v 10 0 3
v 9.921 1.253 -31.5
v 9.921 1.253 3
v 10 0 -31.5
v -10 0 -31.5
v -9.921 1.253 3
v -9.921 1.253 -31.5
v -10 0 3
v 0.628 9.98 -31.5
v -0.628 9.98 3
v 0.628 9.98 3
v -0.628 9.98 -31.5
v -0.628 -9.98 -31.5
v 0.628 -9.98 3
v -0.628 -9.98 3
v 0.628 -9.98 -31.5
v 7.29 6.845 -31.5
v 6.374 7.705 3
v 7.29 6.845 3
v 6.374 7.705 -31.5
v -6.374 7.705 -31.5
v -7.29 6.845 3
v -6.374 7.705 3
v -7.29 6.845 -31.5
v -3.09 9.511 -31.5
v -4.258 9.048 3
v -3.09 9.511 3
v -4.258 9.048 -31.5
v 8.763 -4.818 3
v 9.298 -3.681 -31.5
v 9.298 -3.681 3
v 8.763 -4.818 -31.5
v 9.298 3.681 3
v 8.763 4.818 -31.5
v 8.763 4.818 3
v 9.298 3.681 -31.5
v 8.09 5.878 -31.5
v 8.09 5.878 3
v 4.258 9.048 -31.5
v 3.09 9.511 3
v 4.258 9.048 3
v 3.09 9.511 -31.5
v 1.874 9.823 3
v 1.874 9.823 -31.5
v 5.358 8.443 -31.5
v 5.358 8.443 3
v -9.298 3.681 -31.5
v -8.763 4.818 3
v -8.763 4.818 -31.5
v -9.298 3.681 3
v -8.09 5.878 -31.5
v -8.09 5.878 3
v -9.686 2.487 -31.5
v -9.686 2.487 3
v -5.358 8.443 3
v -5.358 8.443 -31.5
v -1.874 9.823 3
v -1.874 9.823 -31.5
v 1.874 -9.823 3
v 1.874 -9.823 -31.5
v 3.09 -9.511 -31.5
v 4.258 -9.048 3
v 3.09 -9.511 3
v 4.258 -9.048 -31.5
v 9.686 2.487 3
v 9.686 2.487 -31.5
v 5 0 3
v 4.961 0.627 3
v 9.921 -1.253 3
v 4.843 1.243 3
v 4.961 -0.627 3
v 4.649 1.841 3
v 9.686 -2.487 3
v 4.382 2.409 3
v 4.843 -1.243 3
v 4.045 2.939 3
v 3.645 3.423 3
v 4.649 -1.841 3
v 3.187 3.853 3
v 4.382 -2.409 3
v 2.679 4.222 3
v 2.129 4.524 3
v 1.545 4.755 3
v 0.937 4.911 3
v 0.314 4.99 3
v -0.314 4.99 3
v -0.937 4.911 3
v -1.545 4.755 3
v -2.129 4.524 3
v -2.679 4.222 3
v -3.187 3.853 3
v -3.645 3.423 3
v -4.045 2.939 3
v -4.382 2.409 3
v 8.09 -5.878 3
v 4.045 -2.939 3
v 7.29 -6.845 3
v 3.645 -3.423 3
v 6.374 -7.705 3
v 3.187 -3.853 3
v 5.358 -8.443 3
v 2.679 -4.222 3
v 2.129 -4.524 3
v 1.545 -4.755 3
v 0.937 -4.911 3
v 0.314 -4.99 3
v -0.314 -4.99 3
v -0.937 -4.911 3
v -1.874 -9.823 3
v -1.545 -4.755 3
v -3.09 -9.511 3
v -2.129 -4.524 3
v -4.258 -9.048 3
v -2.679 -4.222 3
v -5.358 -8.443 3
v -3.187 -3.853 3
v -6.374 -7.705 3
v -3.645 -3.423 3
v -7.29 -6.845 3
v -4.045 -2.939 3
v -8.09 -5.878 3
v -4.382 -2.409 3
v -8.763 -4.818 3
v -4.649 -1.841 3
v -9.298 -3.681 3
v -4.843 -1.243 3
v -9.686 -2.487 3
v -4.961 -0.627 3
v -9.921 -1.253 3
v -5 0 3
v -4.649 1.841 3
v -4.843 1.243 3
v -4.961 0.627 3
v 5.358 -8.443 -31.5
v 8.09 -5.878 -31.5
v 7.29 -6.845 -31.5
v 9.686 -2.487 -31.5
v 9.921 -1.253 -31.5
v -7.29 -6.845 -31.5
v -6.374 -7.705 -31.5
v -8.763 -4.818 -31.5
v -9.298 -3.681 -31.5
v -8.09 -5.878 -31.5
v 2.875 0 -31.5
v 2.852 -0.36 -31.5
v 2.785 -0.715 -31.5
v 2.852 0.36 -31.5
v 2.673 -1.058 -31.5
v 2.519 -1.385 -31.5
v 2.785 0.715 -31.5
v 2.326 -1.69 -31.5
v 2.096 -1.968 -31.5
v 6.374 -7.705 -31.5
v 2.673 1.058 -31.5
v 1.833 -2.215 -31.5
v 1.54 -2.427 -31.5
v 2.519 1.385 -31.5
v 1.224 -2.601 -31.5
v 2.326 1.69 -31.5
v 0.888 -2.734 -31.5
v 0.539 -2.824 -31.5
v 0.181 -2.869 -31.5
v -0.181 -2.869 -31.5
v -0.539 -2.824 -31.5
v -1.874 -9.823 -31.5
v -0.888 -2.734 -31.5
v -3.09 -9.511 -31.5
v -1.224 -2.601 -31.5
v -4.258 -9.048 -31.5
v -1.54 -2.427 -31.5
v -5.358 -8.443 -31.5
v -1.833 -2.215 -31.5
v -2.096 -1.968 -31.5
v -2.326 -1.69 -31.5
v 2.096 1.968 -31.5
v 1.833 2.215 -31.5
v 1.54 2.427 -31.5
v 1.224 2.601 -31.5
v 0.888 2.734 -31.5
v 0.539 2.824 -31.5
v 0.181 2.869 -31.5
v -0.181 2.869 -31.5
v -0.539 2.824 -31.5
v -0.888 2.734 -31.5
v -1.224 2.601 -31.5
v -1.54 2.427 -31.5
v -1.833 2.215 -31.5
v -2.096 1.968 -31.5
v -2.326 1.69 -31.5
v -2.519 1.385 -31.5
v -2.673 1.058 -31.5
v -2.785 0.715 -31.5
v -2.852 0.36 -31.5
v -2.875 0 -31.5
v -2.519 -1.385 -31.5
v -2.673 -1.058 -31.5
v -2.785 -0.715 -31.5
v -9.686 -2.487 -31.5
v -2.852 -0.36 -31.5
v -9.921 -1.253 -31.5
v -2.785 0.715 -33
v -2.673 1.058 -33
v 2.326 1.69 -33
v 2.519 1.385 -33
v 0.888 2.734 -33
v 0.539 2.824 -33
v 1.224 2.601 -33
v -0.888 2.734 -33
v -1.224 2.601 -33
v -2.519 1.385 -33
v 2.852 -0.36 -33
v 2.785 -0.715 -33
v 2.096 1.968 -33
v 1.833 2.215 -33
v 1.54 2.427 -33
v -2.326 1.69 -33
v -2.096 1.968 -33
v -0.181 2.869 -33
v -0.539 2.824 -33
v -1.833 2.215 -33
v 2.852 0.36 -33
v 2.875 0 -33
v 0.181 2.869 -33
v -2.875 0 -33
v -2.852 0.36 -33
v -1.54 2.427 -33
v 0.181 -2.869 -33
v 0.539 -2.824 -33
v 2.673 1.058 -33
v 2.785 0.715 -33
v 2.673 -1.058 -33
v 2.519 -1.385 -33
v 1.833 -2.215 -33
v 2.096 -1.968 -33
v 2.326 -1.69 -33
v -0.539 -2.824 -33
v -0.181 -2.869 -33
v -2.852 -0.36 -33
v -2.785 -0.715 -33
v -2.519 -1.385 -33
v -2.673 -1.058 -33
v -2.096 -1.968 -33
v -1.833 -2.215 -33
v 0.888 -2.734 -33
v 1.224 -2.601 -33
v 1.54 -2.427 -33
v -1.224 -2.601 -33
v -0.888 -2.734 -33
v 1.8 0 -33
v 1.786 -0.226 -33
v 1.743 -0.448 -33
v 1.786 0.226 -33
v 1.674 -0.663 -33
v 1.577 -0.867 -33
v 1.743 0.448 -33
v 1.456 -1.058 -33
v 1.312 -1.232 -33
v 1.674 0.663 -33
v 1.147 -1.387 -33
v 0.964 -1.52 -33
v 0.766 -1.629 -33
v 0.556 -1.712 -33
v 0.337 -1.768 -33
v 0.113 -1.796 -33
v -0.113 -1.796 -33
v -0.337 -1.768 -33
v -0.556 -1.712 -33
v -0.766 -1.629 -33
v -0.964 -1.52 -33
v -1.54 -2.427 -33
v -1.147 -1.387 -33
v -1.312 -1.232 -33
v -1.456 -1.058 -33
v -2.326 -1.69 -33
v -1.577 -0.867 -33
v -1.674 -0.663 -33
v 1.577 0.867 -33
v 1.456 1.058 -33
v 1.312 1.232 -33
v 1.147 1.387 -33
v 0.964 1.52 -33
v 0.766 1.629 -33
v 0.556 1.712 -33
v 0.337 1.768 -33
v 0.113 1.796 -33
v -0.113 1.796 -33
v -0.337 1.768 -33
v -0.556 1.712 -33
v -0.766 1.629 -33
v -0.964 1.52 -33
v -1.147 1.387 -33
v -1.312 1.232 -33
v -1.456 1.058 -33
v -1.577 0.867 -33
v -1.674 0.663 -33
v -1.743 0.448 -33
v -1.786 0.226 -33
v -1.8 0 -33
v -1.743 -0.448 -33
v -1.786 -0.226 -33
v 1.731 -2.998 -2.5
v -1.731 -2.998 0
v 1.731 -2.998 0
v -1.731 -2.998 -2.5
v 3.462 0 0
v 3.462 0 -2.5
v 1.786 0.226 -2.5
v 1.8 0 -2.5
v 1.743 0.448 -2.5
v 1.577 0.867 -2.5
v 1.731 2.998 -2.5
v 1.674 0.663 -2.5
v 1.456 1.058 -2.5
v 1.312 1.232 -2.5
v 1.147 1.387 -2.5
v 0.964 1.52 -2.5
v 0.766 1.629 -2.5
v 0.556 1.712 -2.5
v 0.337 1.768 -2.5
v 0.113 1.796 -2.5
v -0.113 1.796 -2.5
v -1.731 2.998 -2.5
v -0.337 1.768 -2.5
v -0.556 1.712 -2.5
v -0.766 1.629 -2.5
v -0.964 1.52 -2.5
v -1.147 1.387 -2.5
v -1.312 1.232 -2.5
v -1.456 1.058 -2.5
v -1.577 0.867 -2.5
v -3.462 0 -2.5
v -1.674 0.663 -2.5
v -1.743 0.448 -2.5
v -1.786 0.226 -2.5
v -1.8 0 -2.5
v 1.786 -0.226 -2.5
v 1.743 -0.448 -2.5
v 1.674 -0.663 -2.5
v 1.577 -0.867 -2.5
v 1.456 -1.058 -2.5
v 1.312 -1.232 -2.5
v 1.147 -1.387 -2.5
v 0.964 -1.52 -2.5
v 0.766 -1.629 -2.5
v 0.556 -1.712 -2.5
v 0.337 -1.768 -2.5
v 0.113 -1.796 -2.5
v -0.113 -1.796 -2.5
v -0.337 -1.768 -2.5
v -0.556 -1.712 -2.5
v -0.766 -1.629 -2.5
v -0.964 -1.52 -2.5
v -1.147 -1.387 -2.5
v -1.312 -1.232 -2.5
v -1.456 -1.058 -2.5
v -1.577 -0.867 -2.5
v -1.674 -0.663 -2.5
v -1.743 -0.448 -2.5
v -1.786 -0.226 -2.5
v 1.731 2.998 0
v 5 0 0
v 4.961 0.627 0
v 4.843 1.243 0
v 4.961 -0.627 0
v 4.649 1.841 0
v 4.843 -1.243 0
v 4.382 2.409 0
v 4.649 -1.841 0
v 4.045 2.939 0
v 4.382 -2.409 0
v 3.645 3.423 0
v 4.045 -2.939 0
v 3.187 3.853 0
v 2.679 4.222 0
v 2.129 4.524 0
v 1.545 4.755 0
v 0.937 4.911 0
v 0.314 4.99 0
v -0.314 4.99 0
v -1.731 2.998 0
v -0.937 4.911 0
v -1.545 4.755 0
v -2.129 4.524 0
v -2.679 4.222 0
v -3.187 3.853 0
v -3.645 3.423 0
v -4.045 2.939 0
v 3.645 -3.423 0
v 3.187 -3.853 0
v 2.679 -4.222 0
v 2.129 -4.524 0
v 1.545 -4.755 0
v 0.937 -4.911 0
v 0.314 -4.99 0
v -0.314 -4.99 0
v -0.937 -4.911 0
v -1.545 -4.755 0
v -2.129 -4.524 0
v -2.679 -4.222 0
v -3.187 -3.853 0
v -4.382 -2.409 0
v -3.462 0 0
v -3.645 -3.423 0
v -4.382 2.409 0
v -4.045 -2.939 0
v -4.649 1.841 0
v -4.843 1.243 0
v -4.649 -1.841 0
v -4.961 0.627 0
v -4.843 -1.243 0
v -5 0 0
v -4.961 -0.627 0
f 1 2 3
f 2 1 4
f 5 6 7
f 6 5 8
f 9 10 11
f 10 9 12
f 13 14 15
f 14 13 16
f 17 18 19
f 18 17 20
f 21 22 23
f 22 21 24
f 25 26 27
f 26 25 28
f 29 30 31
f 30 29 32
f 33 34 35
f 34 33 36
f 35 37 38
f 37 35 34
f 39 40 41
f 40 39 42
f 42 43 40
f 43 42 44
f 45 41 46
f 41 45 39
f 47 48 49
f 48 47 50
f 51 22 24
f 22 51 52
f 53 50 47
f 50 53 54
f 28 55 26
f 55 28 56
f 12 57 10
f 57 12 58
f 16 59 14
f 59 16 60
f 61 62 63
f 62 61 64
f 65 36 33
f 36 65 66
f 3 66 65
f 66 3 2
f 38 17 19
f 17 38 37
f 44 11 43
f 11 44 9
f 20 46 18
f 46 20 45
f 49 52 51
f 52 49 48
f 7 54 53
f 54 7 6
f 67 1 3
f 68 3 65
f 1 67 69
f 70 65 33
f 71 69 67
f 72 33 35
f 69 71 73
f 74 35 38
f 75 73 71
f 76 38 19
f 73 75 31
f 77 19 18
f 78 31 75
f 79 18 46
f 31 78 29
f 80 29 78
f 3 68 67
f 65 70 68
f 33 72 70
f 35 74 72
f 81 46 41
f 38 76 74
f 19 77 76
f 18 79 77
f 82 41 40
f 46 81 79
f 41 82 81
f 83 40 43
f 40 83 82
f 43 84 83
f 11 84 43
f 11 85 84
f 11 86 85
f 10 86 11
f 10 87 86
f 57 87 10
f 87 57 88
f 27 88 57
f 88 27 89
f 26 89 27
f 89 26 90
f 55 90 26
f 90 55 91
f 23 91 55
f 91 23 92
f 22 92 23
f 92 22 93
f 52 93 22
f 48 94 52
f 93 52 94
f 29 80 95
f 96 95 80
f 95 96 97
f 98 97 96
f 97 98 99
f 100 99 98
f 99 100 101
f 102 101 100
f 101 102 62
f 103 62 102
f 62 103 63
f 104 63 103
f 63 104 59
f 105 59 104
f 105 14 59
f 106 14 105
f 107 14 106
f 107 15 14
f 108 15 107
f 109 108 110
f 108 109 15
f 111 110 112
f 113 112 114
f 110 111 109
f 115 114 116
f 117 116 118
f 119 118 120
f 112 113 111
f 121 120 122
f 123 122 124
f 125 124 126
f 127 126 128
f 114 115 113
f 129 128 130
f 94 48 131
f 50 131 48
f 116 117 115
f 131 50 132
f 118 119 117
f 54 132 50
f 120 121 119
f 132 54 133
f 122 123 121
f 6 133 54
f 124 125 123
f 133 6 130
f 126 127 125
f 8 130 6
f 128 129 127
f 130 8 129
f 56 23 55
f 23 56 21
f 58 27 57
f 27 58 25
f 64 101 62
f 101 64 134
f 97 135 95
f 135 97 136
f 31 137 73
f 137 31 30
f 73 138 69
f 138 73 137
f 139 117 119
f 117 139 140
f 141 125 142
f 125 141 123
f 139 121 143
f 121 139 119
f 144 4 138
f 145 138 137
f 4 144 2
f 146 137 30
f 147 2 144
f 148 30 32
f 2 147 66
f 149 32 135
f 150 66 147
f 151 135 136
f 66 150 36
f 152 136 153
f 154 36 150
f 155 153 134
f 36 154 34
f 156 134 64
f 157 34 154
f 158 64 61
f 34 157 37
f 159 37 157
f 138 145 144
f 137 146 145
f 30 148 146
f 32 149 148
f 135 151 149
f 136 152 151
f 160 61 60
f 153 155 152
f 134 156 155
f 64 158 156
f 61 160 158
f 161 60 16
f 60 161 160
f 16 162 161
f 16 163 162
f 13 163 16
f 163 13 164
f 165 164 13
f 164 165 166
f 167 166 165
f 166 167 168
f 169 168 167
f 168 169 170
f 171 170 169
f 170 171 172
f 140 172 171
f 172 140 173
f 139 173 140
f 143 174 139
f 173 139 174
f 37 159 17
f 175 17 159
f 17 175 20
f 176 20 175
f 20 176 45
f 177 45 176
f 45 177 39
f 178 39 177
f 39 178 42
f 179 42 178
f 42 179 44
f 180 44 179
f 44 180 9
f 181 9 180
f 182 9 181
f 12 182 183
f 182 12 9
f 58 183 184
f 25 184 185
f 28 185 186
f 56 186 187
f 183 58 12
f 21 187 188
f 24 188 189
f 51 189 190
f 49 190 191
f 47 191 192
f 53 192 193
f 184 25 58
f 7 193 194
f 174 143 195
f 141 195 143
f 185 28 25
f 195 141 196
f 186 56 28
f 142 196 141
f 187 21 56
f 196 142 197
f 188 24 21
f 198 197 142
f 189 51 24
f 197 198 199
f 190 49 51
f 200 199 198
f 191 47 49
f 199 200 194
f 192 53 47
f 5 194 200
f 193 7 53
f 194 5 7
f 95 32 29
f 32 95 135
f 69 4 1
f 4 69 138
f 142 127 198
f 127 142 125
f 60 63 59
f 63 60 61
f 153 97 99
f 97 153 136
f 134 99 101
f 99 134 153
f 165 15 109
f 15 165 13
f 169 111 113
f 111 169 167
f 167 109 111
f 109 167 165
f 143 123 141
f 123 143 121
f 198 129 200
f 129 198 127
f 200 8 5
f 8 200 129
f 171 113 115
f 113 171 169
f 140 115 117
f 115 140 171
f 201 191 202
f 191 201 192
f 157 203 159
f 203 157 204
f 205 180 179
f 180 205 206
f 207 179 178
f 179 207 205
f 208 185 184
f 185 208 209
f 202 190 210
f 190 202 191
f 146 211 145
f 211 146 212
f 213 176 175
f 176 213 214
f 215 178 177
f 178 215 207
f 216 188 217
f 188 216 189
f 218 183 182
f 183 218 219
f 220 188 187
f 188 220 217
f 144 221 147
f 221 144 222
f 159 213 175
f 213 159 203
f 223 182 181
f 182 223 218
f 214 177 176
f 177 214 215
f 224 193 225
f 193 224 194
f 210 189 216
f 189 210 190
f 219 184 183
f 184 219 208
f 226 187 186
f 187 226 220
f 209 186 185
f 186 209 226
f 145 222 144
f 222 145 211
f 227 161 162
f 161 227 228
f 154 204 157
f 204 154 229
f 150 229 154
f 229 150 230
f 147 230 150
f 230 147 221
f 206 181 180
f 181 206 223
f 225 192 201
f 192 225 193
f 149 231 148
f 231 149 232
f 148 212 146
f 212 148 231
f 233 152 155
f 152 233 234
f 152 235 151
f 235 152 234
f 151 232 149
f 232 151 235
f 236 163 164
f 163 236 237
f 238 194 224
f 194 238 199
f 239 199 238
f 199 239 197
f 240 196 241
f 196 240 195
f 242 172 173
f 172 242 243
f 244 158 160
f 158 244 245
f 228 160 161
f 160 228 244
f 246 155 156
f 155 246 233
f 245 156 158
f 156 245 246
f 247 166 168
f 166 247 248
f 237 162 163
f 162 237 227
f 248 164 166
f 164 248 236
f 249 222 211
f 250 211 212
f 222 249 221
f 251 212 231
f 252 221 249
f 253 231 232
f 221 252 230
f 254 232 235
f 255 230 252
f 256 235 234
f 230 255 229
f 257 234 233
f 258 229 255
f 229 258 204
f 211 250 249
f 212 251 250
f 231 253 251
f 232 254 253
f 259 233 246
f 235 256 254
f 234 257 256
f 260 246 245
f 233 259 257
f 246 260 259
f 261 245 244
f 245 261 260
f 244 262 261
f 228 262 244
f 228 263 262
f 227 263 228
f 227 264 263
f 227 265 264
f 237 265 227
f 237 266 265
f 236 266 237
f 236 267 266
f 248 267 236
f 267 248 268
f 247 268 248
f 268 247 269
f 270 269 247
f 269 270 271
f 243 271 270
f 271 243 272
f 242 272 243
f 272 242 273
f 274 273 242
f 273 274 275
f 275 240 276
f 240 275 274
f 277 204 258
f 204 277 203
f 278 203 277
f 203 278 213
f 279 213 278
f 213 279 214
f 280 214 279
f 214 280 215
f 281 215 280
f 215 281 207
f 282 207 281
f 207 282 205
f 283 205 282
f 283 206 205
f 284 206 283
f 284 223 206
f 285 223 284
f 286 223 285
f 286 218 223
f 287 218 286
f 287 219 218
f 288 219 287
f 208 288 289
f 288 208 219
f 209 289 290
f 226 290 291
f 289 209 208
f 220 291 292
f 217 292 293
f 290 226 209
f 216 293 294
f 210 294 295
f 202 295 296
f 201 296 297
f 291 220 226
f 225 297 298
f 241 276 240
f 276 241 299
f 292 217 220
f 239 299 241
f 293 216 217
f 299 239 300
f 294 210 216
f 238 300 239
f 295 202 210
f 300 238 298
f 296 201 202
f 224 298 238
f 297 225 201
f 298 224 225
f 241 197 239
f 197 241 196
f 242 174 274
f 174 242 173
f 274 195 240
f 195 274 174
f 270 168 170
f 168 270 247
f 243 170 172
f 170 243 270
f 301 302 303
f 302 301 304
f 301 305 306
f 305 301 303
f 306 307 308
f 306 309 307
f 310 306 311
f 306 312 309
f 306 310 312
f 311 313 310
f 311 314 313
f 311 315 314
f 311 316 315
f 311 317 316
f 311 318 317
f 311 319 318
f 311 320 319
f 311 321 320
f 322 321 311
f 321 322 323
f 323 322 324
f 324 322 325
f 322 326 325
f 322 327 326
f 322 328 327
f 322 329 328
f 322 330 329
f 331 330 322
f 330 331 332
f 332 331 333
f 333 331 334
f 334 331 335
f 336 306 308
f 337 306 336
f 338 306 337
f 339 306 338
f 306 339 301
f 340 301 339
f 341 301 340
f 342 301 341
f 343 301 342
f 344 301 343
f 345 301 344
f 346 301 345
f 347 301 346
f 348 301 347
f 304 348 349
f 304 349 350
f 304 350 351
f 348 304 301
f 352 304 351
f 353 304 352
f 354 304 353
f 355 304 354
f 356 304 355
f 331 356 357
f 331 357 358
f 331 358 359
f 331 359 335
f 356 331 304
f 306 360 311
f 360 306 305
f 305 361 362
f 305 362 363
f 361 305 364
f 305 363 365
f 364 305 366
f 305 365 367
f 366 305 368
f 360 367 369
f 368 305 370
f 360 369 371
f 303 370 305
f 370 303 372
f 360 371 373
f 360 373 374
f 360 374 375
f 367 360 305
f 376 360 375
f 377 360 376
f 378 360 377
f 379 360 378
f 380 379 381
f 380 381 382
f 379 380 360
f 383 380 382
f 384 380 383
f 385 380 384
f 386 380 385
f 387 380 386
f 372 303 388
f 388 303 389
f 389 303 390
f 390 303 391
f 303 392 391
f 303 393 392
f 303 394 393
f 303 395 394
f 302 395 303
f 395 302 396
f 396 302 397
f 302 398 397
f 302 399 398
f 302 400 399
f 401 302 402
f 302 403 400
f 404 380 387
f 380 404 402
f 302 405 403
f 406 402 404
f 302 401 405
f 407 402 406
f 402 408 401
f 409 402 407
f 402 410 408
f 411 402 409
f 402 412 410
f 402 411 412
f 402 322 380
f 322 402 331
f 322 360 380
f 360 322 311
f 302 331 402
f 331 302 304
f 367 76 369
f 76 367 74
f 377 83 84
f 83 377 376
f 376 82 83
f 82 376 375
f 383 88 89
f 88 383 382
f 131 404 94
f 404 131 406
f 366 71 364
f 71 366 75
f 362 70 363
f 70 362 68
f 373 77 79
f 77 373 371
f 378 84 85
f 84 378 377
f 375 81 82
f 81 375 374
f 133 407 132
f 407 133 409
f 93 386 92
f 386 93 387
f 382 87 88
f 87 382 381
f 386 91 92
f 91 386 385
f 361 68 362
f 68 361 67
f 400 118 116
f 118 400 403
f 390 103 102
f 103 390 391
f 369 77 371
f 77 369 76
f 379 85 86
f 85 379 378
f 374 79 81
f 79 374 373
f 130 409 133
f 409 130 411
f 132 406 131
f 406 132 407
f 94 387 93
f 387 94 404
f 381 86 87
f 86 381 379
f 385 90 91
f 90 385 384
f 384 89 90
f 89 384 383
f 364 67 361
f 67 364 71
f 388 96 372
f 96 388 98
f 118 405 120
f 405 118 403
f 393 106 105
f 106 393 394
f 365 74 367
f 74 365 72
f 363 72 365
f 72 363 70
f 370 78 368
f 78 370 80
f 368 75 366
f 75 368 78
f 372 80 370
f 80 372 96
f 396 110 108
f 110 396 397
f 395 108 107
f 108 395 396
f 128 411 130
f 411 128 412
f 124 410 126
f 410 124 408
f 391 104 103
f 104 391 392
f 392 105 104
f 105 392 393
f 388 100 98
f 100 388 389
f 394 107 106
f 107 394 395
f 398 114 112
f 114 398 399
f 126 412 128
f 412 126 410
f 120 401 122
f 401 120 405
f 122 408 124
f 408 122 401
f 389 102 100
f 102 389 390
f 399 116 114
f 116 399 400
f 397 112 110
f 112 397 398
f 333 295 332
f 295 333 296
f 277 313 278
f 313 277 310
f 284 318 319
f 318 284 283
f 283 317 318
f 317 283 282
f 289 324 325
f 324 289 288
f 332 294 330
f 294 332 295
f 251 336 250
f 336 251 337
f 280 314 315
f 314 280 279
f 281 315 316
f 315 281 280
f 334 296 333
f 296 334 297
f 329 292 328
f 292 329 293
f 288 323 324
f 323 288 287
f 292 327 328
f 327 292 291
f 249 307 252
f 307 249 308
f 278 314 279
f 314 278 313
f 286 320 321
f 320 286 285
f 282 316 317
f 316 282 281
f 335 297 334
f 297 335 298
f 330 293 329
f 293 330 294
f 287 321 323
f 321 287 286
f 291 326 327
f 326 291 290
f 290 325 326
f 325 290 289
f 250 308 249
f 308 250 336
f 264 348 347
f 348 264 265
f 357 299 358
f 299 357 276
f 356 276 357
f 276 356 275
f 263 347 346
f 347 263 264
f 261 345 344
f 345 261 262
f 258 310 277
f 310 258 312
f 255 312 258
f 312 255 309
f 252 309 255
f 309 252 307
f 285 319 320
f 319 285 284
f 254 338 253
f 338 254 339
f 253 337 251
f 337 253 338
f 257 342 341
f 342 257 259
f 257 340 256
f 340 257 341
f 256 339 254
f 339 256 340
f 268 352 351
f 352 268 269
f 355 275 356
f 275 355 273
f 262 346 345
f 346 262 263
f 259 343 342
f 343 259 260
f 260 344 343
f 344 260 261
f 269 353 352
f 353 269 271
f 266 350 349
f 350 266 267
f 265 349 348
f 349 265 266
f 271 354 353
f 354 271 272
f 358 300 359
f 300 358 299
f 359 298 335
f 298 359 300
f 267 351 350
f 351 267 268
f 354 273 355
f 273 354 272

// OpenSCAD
$fn = 50;


difference() {
	union() {
		translate(v = [0, 0, -31.5000000000]) {
			cylinder(h = 34.5000000000, r = 10.0000000000);
		}
		#translate(v = [0, 0, -33.0000000000]) {
			cylinder(h = 33, r = 2.8750000000);
		}
	}
	union() {
		translate(v = [0, 0, 0]) {
			rotate(a = [0, 0, 0]) {
				difference() {
					union() {
						translate(v = [0, 0, -2.5000000000]) {
							linear_extrude(height = 2.5000000000) {
								polygon(points = [[3.4620000000, 0.0000000000], [1.7310000000, 2.9981799479], [-1.7310000000, 2.9981799479], [-3.4620000000, 0.0000000000], [-1.7310000000, -2.9981799479], [1.7310000000, -2.9981799479]]);
							}
						}
					}
					union();
				}
			}
		}
		#cylinder(h = 3, r = 5.0000000000);
		#translate(v = [0, 0, -100.0000000000]) {
			cylinder(h = 200, r = 1.8000000000);
		}
	}
}
